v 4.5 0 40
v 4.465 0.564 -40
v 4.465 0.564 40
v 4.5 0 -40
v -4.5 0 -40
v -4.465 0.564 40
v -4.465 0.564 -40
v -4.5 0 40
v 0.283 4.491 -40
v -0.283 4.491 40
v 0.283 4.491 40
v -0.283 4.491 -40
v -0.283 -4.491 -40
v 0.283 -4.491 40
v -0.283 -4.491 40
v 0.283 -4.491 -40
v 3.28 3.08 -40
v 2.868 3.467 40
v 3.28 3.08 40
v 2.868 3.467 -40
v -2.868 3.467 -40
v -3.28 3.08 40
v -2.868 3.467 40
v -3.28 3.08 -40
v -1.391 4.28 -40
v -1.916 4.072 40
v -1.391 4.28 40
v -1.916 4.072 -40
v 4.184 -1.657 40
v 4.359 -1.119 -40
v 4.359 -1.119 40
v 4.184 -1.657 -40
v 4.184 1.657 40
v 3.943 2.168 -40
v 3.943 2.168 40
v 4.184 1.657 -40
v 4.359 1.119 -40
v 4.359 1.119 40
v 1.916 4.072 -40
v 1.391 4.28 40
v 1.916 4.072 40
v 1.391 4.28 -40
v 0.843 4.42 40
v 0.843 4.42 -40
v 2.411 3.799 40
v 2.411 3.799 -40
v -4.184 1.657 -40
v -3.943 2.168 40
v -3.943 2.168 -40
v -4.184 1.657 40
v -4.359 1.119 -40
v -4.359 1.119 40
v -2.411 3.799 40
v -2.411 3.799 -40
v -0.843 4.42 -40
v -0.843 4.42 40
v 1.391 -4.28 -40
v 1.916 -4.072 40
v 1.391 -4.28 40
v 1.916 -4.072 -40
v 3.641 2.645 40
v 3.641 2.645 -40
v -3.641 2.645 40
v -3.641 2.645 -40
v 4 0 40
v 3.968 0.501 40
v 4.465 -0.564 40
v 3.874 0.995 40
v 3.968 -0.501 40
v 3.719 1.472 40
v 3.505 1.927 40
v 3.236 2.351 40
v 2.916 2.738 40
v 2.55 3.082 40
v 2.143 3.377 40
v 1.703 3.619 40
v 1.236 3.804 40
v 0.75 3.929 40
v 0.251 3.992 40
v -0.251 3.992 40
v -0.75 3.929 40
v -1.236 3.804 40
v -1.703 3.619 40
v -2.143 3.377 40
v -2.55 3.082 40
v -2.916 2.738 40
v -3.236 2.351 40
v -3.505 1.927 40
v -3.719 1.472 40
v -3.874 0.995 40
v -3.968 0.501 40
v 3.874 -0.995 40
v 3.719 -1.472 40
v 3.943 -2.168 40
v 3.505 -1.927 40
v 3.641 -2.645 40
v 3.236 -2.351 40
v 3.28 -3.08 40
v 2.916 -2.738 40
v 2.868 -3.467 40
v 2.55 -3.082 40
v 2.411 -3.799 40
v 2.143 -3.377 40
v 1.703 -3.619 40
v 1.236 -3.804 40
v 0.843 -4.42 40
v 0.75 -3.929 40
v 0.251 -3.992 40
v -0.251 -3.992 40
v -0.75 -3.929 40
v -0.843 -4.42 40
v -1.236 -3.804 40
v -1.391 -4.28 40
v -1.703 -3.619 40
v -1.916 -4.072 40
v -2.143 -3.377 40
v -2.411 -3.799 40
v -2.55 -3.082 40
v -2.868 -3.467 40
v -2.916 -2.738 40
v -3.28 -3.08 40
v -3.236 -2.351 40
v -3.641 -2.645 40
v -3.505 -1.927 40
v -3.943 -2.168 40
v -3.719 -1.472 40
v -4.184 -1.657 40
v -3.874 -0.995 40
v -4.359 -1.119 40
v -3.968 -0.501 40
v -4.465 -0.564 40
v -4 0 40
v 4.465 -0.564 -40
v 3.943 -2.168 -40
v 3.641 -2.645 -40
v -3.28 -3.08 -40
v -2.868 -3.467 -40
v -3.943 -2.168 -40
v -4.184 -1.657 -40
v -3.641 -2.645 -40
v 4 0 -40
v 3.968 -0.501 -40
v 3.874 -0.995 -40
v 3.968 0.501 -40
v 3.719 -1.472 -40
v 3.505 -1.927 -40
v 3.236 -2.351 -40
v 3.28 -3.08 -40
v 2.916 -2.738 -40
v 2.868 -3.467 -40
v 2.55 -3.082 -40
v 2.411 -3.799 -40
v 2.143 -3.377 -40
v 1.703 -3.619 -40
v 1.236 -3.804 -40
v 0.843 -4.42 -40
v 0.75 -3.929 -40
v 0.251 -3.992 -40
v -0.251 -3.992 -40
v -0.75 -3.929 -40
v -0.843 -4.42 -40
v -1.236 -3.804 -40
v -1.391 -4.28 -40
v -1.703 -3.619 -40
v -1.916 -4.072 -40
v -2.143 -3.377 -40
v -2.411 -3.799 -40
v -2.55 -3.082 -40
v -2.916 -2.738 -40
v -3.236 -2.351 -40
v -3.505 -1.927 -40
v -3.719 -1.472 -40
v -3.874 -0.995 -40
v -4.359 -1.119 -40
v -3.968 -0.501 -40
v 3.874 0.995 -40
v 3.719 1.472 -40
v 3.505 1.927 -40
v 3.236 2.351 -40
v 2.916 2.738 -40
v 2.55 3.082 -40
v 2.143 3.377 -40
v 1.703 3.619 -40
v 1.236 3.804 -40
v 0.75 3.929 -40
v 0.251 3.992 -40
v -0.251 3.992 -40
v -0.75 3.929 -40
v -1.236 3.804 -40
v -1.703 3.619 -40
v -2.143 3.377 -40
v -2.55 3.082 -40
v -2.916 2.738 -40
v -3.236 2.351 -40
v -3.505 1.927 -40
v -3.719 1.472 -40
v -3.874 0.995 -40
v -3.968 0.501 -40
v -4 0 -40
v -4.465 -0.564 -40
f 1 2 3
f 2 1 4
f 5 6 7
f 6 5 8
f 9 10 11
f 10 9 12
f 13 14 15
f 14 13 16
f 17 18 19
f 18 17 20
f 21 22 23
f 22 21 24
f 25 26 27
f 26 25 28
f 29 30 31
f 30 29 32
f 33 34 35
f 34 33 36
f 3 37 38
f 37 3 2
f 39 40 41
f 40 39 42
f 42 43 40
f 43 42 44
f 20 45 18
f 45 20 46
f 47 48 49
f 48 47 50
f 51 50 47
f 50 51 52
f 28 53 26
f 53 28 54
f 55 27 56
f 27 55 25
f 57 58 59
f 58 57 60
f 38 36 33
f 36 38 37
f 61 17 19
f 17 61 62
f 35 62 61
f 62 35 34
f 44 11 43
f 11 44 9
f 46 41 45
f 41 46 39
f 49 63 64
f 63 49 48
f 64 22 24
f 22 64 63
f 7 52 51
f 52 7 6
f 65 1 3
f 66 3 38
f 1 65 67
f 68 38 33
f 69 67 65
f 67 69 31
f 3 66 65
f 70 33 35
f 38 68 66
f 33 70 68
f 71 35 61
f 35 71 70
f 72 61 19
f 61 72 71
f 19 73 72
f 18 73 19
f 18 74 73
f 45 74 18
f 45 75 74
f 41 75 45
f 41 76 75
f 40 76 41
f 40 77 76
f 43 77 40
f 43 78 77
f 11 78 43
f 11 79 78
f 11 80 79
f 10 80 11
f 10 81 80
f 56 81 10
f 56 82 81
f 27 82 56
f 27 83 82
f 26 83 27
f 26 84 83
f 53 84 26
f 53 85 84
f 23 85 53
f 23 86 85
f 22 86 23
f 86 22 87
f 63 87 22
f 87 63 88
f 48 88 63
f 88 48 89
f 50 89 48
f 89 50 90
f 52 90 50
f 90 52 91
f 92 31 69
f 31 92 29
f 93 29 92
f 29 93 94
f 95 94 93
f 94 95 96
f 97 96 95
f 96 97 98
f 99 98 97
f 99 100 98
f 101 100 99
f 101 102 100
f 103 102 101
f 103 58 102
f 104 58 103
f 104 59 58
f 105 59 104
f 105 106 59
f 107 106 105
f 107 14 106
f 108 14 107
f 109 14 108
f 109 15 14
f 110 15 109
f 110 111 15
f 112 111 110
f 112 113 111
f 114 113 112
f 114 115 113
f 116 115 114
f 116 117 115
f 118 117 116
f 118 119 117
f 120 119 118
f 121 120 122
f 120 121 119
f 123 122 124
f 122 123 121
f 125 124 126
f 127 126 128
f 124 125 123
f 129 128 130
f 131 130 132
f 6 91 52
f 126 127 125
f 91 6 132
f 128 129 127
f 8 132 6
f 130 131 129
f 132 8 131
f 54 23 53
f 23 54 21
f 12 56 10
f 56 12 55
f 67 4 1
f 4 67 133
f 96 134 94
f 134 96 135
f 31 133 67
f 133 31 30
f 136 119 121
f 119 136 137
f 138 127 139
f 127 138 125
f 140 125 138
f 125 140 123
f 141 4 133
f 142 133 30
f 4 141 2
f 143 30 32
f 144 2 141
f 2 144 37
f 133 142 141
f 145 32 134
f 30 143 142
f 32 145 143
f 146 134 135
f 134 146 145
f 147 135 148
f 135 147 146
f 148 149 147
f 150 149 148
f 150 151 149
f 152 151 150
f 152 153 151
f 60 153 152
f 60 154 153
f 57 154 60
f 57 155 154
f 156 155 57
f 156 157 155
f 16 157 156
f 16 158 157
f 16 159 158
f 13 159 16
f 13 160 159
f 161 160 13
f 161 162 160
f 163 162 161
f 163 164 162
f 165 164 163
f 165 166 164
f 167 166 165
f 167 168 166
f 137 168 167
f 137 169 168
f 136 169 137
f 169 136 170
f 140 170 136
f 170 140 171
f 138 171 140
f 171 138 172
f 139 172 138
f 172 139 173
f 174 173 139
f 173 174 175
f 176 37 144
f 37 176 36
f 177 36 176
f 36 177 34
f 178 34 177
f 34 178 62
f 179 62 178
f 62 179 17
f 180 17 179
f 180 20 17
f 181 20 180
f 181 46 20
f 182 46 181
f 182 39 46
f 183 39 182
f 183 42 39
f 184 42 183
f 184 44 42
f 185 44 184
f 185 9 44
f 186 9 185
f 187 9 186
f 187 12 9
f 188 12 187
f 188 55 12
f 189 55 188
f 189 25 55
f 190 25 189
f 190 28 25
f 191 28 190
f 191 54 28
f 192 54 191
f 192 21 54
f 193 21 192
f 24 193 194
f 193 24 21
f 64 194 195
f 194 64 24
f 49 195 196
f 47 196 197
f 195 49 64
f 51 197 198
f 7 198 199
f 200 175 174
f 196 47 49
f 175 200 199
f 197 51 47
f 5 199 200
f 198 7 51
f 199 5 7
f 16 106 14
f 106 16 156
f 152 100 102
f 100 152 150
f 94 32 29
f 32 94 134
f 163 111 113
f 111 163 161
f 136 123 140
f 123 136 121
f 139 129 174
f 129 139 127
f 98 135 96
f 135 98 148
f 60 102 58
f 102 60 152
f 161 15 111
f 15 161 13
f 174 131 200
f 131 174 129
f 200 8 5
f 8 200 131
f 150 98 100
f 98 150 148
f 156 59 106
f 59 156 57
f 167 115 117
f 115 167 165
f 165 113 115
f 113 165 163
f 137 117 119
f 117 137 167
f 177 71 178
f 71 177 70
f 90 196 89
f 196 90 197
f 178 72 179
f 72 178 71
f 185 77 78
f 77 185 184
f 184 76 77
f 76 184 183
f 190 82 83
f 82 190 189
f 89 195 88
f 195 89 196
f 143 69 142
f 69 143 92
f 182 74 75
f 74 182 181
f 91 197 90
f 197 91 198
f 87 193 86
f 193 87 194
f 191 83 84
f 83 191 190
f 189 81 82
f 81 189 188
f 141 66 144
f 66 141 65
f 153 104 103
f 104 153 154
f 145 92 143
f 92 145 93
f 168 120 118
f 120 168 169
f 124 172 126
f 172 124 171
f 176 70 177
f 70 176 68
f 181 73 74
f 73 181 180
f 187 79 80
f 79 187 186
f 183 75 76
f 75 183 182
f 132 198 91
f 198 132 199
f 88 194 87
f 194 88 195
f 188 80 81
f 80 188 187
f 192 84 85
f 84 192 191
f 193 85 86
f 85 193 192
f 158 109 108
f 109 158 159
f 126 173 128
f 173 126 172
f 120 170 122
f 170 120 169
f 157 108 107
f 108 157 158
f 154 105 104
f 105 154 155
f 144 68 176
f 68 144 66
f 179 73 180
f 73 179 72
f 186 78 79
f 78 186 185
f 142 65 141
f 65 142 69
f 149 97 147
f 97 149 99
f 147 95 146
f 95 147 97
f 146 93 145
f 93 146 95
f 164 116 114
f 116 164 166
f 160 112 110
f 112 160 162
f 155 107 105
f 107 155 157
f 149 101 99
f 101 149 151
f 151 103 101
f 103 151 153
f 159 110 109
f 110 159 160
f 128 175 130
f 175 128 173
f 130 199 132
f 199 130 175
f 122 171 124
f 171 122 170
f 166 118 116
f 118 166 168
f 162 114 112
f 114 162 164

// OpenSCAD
$fn = 50;


difference() {
	union() {
		translate(v = [0, 0, -40.0000000000]) {
			cylinder(h = 80, r = 4.5000000000);
		}
	}
	union() {
		translate(v = [0, 0, -100.0000000000]) {
			cylinder(h = 200, r = 4.0000000000);
		}
	}
}
